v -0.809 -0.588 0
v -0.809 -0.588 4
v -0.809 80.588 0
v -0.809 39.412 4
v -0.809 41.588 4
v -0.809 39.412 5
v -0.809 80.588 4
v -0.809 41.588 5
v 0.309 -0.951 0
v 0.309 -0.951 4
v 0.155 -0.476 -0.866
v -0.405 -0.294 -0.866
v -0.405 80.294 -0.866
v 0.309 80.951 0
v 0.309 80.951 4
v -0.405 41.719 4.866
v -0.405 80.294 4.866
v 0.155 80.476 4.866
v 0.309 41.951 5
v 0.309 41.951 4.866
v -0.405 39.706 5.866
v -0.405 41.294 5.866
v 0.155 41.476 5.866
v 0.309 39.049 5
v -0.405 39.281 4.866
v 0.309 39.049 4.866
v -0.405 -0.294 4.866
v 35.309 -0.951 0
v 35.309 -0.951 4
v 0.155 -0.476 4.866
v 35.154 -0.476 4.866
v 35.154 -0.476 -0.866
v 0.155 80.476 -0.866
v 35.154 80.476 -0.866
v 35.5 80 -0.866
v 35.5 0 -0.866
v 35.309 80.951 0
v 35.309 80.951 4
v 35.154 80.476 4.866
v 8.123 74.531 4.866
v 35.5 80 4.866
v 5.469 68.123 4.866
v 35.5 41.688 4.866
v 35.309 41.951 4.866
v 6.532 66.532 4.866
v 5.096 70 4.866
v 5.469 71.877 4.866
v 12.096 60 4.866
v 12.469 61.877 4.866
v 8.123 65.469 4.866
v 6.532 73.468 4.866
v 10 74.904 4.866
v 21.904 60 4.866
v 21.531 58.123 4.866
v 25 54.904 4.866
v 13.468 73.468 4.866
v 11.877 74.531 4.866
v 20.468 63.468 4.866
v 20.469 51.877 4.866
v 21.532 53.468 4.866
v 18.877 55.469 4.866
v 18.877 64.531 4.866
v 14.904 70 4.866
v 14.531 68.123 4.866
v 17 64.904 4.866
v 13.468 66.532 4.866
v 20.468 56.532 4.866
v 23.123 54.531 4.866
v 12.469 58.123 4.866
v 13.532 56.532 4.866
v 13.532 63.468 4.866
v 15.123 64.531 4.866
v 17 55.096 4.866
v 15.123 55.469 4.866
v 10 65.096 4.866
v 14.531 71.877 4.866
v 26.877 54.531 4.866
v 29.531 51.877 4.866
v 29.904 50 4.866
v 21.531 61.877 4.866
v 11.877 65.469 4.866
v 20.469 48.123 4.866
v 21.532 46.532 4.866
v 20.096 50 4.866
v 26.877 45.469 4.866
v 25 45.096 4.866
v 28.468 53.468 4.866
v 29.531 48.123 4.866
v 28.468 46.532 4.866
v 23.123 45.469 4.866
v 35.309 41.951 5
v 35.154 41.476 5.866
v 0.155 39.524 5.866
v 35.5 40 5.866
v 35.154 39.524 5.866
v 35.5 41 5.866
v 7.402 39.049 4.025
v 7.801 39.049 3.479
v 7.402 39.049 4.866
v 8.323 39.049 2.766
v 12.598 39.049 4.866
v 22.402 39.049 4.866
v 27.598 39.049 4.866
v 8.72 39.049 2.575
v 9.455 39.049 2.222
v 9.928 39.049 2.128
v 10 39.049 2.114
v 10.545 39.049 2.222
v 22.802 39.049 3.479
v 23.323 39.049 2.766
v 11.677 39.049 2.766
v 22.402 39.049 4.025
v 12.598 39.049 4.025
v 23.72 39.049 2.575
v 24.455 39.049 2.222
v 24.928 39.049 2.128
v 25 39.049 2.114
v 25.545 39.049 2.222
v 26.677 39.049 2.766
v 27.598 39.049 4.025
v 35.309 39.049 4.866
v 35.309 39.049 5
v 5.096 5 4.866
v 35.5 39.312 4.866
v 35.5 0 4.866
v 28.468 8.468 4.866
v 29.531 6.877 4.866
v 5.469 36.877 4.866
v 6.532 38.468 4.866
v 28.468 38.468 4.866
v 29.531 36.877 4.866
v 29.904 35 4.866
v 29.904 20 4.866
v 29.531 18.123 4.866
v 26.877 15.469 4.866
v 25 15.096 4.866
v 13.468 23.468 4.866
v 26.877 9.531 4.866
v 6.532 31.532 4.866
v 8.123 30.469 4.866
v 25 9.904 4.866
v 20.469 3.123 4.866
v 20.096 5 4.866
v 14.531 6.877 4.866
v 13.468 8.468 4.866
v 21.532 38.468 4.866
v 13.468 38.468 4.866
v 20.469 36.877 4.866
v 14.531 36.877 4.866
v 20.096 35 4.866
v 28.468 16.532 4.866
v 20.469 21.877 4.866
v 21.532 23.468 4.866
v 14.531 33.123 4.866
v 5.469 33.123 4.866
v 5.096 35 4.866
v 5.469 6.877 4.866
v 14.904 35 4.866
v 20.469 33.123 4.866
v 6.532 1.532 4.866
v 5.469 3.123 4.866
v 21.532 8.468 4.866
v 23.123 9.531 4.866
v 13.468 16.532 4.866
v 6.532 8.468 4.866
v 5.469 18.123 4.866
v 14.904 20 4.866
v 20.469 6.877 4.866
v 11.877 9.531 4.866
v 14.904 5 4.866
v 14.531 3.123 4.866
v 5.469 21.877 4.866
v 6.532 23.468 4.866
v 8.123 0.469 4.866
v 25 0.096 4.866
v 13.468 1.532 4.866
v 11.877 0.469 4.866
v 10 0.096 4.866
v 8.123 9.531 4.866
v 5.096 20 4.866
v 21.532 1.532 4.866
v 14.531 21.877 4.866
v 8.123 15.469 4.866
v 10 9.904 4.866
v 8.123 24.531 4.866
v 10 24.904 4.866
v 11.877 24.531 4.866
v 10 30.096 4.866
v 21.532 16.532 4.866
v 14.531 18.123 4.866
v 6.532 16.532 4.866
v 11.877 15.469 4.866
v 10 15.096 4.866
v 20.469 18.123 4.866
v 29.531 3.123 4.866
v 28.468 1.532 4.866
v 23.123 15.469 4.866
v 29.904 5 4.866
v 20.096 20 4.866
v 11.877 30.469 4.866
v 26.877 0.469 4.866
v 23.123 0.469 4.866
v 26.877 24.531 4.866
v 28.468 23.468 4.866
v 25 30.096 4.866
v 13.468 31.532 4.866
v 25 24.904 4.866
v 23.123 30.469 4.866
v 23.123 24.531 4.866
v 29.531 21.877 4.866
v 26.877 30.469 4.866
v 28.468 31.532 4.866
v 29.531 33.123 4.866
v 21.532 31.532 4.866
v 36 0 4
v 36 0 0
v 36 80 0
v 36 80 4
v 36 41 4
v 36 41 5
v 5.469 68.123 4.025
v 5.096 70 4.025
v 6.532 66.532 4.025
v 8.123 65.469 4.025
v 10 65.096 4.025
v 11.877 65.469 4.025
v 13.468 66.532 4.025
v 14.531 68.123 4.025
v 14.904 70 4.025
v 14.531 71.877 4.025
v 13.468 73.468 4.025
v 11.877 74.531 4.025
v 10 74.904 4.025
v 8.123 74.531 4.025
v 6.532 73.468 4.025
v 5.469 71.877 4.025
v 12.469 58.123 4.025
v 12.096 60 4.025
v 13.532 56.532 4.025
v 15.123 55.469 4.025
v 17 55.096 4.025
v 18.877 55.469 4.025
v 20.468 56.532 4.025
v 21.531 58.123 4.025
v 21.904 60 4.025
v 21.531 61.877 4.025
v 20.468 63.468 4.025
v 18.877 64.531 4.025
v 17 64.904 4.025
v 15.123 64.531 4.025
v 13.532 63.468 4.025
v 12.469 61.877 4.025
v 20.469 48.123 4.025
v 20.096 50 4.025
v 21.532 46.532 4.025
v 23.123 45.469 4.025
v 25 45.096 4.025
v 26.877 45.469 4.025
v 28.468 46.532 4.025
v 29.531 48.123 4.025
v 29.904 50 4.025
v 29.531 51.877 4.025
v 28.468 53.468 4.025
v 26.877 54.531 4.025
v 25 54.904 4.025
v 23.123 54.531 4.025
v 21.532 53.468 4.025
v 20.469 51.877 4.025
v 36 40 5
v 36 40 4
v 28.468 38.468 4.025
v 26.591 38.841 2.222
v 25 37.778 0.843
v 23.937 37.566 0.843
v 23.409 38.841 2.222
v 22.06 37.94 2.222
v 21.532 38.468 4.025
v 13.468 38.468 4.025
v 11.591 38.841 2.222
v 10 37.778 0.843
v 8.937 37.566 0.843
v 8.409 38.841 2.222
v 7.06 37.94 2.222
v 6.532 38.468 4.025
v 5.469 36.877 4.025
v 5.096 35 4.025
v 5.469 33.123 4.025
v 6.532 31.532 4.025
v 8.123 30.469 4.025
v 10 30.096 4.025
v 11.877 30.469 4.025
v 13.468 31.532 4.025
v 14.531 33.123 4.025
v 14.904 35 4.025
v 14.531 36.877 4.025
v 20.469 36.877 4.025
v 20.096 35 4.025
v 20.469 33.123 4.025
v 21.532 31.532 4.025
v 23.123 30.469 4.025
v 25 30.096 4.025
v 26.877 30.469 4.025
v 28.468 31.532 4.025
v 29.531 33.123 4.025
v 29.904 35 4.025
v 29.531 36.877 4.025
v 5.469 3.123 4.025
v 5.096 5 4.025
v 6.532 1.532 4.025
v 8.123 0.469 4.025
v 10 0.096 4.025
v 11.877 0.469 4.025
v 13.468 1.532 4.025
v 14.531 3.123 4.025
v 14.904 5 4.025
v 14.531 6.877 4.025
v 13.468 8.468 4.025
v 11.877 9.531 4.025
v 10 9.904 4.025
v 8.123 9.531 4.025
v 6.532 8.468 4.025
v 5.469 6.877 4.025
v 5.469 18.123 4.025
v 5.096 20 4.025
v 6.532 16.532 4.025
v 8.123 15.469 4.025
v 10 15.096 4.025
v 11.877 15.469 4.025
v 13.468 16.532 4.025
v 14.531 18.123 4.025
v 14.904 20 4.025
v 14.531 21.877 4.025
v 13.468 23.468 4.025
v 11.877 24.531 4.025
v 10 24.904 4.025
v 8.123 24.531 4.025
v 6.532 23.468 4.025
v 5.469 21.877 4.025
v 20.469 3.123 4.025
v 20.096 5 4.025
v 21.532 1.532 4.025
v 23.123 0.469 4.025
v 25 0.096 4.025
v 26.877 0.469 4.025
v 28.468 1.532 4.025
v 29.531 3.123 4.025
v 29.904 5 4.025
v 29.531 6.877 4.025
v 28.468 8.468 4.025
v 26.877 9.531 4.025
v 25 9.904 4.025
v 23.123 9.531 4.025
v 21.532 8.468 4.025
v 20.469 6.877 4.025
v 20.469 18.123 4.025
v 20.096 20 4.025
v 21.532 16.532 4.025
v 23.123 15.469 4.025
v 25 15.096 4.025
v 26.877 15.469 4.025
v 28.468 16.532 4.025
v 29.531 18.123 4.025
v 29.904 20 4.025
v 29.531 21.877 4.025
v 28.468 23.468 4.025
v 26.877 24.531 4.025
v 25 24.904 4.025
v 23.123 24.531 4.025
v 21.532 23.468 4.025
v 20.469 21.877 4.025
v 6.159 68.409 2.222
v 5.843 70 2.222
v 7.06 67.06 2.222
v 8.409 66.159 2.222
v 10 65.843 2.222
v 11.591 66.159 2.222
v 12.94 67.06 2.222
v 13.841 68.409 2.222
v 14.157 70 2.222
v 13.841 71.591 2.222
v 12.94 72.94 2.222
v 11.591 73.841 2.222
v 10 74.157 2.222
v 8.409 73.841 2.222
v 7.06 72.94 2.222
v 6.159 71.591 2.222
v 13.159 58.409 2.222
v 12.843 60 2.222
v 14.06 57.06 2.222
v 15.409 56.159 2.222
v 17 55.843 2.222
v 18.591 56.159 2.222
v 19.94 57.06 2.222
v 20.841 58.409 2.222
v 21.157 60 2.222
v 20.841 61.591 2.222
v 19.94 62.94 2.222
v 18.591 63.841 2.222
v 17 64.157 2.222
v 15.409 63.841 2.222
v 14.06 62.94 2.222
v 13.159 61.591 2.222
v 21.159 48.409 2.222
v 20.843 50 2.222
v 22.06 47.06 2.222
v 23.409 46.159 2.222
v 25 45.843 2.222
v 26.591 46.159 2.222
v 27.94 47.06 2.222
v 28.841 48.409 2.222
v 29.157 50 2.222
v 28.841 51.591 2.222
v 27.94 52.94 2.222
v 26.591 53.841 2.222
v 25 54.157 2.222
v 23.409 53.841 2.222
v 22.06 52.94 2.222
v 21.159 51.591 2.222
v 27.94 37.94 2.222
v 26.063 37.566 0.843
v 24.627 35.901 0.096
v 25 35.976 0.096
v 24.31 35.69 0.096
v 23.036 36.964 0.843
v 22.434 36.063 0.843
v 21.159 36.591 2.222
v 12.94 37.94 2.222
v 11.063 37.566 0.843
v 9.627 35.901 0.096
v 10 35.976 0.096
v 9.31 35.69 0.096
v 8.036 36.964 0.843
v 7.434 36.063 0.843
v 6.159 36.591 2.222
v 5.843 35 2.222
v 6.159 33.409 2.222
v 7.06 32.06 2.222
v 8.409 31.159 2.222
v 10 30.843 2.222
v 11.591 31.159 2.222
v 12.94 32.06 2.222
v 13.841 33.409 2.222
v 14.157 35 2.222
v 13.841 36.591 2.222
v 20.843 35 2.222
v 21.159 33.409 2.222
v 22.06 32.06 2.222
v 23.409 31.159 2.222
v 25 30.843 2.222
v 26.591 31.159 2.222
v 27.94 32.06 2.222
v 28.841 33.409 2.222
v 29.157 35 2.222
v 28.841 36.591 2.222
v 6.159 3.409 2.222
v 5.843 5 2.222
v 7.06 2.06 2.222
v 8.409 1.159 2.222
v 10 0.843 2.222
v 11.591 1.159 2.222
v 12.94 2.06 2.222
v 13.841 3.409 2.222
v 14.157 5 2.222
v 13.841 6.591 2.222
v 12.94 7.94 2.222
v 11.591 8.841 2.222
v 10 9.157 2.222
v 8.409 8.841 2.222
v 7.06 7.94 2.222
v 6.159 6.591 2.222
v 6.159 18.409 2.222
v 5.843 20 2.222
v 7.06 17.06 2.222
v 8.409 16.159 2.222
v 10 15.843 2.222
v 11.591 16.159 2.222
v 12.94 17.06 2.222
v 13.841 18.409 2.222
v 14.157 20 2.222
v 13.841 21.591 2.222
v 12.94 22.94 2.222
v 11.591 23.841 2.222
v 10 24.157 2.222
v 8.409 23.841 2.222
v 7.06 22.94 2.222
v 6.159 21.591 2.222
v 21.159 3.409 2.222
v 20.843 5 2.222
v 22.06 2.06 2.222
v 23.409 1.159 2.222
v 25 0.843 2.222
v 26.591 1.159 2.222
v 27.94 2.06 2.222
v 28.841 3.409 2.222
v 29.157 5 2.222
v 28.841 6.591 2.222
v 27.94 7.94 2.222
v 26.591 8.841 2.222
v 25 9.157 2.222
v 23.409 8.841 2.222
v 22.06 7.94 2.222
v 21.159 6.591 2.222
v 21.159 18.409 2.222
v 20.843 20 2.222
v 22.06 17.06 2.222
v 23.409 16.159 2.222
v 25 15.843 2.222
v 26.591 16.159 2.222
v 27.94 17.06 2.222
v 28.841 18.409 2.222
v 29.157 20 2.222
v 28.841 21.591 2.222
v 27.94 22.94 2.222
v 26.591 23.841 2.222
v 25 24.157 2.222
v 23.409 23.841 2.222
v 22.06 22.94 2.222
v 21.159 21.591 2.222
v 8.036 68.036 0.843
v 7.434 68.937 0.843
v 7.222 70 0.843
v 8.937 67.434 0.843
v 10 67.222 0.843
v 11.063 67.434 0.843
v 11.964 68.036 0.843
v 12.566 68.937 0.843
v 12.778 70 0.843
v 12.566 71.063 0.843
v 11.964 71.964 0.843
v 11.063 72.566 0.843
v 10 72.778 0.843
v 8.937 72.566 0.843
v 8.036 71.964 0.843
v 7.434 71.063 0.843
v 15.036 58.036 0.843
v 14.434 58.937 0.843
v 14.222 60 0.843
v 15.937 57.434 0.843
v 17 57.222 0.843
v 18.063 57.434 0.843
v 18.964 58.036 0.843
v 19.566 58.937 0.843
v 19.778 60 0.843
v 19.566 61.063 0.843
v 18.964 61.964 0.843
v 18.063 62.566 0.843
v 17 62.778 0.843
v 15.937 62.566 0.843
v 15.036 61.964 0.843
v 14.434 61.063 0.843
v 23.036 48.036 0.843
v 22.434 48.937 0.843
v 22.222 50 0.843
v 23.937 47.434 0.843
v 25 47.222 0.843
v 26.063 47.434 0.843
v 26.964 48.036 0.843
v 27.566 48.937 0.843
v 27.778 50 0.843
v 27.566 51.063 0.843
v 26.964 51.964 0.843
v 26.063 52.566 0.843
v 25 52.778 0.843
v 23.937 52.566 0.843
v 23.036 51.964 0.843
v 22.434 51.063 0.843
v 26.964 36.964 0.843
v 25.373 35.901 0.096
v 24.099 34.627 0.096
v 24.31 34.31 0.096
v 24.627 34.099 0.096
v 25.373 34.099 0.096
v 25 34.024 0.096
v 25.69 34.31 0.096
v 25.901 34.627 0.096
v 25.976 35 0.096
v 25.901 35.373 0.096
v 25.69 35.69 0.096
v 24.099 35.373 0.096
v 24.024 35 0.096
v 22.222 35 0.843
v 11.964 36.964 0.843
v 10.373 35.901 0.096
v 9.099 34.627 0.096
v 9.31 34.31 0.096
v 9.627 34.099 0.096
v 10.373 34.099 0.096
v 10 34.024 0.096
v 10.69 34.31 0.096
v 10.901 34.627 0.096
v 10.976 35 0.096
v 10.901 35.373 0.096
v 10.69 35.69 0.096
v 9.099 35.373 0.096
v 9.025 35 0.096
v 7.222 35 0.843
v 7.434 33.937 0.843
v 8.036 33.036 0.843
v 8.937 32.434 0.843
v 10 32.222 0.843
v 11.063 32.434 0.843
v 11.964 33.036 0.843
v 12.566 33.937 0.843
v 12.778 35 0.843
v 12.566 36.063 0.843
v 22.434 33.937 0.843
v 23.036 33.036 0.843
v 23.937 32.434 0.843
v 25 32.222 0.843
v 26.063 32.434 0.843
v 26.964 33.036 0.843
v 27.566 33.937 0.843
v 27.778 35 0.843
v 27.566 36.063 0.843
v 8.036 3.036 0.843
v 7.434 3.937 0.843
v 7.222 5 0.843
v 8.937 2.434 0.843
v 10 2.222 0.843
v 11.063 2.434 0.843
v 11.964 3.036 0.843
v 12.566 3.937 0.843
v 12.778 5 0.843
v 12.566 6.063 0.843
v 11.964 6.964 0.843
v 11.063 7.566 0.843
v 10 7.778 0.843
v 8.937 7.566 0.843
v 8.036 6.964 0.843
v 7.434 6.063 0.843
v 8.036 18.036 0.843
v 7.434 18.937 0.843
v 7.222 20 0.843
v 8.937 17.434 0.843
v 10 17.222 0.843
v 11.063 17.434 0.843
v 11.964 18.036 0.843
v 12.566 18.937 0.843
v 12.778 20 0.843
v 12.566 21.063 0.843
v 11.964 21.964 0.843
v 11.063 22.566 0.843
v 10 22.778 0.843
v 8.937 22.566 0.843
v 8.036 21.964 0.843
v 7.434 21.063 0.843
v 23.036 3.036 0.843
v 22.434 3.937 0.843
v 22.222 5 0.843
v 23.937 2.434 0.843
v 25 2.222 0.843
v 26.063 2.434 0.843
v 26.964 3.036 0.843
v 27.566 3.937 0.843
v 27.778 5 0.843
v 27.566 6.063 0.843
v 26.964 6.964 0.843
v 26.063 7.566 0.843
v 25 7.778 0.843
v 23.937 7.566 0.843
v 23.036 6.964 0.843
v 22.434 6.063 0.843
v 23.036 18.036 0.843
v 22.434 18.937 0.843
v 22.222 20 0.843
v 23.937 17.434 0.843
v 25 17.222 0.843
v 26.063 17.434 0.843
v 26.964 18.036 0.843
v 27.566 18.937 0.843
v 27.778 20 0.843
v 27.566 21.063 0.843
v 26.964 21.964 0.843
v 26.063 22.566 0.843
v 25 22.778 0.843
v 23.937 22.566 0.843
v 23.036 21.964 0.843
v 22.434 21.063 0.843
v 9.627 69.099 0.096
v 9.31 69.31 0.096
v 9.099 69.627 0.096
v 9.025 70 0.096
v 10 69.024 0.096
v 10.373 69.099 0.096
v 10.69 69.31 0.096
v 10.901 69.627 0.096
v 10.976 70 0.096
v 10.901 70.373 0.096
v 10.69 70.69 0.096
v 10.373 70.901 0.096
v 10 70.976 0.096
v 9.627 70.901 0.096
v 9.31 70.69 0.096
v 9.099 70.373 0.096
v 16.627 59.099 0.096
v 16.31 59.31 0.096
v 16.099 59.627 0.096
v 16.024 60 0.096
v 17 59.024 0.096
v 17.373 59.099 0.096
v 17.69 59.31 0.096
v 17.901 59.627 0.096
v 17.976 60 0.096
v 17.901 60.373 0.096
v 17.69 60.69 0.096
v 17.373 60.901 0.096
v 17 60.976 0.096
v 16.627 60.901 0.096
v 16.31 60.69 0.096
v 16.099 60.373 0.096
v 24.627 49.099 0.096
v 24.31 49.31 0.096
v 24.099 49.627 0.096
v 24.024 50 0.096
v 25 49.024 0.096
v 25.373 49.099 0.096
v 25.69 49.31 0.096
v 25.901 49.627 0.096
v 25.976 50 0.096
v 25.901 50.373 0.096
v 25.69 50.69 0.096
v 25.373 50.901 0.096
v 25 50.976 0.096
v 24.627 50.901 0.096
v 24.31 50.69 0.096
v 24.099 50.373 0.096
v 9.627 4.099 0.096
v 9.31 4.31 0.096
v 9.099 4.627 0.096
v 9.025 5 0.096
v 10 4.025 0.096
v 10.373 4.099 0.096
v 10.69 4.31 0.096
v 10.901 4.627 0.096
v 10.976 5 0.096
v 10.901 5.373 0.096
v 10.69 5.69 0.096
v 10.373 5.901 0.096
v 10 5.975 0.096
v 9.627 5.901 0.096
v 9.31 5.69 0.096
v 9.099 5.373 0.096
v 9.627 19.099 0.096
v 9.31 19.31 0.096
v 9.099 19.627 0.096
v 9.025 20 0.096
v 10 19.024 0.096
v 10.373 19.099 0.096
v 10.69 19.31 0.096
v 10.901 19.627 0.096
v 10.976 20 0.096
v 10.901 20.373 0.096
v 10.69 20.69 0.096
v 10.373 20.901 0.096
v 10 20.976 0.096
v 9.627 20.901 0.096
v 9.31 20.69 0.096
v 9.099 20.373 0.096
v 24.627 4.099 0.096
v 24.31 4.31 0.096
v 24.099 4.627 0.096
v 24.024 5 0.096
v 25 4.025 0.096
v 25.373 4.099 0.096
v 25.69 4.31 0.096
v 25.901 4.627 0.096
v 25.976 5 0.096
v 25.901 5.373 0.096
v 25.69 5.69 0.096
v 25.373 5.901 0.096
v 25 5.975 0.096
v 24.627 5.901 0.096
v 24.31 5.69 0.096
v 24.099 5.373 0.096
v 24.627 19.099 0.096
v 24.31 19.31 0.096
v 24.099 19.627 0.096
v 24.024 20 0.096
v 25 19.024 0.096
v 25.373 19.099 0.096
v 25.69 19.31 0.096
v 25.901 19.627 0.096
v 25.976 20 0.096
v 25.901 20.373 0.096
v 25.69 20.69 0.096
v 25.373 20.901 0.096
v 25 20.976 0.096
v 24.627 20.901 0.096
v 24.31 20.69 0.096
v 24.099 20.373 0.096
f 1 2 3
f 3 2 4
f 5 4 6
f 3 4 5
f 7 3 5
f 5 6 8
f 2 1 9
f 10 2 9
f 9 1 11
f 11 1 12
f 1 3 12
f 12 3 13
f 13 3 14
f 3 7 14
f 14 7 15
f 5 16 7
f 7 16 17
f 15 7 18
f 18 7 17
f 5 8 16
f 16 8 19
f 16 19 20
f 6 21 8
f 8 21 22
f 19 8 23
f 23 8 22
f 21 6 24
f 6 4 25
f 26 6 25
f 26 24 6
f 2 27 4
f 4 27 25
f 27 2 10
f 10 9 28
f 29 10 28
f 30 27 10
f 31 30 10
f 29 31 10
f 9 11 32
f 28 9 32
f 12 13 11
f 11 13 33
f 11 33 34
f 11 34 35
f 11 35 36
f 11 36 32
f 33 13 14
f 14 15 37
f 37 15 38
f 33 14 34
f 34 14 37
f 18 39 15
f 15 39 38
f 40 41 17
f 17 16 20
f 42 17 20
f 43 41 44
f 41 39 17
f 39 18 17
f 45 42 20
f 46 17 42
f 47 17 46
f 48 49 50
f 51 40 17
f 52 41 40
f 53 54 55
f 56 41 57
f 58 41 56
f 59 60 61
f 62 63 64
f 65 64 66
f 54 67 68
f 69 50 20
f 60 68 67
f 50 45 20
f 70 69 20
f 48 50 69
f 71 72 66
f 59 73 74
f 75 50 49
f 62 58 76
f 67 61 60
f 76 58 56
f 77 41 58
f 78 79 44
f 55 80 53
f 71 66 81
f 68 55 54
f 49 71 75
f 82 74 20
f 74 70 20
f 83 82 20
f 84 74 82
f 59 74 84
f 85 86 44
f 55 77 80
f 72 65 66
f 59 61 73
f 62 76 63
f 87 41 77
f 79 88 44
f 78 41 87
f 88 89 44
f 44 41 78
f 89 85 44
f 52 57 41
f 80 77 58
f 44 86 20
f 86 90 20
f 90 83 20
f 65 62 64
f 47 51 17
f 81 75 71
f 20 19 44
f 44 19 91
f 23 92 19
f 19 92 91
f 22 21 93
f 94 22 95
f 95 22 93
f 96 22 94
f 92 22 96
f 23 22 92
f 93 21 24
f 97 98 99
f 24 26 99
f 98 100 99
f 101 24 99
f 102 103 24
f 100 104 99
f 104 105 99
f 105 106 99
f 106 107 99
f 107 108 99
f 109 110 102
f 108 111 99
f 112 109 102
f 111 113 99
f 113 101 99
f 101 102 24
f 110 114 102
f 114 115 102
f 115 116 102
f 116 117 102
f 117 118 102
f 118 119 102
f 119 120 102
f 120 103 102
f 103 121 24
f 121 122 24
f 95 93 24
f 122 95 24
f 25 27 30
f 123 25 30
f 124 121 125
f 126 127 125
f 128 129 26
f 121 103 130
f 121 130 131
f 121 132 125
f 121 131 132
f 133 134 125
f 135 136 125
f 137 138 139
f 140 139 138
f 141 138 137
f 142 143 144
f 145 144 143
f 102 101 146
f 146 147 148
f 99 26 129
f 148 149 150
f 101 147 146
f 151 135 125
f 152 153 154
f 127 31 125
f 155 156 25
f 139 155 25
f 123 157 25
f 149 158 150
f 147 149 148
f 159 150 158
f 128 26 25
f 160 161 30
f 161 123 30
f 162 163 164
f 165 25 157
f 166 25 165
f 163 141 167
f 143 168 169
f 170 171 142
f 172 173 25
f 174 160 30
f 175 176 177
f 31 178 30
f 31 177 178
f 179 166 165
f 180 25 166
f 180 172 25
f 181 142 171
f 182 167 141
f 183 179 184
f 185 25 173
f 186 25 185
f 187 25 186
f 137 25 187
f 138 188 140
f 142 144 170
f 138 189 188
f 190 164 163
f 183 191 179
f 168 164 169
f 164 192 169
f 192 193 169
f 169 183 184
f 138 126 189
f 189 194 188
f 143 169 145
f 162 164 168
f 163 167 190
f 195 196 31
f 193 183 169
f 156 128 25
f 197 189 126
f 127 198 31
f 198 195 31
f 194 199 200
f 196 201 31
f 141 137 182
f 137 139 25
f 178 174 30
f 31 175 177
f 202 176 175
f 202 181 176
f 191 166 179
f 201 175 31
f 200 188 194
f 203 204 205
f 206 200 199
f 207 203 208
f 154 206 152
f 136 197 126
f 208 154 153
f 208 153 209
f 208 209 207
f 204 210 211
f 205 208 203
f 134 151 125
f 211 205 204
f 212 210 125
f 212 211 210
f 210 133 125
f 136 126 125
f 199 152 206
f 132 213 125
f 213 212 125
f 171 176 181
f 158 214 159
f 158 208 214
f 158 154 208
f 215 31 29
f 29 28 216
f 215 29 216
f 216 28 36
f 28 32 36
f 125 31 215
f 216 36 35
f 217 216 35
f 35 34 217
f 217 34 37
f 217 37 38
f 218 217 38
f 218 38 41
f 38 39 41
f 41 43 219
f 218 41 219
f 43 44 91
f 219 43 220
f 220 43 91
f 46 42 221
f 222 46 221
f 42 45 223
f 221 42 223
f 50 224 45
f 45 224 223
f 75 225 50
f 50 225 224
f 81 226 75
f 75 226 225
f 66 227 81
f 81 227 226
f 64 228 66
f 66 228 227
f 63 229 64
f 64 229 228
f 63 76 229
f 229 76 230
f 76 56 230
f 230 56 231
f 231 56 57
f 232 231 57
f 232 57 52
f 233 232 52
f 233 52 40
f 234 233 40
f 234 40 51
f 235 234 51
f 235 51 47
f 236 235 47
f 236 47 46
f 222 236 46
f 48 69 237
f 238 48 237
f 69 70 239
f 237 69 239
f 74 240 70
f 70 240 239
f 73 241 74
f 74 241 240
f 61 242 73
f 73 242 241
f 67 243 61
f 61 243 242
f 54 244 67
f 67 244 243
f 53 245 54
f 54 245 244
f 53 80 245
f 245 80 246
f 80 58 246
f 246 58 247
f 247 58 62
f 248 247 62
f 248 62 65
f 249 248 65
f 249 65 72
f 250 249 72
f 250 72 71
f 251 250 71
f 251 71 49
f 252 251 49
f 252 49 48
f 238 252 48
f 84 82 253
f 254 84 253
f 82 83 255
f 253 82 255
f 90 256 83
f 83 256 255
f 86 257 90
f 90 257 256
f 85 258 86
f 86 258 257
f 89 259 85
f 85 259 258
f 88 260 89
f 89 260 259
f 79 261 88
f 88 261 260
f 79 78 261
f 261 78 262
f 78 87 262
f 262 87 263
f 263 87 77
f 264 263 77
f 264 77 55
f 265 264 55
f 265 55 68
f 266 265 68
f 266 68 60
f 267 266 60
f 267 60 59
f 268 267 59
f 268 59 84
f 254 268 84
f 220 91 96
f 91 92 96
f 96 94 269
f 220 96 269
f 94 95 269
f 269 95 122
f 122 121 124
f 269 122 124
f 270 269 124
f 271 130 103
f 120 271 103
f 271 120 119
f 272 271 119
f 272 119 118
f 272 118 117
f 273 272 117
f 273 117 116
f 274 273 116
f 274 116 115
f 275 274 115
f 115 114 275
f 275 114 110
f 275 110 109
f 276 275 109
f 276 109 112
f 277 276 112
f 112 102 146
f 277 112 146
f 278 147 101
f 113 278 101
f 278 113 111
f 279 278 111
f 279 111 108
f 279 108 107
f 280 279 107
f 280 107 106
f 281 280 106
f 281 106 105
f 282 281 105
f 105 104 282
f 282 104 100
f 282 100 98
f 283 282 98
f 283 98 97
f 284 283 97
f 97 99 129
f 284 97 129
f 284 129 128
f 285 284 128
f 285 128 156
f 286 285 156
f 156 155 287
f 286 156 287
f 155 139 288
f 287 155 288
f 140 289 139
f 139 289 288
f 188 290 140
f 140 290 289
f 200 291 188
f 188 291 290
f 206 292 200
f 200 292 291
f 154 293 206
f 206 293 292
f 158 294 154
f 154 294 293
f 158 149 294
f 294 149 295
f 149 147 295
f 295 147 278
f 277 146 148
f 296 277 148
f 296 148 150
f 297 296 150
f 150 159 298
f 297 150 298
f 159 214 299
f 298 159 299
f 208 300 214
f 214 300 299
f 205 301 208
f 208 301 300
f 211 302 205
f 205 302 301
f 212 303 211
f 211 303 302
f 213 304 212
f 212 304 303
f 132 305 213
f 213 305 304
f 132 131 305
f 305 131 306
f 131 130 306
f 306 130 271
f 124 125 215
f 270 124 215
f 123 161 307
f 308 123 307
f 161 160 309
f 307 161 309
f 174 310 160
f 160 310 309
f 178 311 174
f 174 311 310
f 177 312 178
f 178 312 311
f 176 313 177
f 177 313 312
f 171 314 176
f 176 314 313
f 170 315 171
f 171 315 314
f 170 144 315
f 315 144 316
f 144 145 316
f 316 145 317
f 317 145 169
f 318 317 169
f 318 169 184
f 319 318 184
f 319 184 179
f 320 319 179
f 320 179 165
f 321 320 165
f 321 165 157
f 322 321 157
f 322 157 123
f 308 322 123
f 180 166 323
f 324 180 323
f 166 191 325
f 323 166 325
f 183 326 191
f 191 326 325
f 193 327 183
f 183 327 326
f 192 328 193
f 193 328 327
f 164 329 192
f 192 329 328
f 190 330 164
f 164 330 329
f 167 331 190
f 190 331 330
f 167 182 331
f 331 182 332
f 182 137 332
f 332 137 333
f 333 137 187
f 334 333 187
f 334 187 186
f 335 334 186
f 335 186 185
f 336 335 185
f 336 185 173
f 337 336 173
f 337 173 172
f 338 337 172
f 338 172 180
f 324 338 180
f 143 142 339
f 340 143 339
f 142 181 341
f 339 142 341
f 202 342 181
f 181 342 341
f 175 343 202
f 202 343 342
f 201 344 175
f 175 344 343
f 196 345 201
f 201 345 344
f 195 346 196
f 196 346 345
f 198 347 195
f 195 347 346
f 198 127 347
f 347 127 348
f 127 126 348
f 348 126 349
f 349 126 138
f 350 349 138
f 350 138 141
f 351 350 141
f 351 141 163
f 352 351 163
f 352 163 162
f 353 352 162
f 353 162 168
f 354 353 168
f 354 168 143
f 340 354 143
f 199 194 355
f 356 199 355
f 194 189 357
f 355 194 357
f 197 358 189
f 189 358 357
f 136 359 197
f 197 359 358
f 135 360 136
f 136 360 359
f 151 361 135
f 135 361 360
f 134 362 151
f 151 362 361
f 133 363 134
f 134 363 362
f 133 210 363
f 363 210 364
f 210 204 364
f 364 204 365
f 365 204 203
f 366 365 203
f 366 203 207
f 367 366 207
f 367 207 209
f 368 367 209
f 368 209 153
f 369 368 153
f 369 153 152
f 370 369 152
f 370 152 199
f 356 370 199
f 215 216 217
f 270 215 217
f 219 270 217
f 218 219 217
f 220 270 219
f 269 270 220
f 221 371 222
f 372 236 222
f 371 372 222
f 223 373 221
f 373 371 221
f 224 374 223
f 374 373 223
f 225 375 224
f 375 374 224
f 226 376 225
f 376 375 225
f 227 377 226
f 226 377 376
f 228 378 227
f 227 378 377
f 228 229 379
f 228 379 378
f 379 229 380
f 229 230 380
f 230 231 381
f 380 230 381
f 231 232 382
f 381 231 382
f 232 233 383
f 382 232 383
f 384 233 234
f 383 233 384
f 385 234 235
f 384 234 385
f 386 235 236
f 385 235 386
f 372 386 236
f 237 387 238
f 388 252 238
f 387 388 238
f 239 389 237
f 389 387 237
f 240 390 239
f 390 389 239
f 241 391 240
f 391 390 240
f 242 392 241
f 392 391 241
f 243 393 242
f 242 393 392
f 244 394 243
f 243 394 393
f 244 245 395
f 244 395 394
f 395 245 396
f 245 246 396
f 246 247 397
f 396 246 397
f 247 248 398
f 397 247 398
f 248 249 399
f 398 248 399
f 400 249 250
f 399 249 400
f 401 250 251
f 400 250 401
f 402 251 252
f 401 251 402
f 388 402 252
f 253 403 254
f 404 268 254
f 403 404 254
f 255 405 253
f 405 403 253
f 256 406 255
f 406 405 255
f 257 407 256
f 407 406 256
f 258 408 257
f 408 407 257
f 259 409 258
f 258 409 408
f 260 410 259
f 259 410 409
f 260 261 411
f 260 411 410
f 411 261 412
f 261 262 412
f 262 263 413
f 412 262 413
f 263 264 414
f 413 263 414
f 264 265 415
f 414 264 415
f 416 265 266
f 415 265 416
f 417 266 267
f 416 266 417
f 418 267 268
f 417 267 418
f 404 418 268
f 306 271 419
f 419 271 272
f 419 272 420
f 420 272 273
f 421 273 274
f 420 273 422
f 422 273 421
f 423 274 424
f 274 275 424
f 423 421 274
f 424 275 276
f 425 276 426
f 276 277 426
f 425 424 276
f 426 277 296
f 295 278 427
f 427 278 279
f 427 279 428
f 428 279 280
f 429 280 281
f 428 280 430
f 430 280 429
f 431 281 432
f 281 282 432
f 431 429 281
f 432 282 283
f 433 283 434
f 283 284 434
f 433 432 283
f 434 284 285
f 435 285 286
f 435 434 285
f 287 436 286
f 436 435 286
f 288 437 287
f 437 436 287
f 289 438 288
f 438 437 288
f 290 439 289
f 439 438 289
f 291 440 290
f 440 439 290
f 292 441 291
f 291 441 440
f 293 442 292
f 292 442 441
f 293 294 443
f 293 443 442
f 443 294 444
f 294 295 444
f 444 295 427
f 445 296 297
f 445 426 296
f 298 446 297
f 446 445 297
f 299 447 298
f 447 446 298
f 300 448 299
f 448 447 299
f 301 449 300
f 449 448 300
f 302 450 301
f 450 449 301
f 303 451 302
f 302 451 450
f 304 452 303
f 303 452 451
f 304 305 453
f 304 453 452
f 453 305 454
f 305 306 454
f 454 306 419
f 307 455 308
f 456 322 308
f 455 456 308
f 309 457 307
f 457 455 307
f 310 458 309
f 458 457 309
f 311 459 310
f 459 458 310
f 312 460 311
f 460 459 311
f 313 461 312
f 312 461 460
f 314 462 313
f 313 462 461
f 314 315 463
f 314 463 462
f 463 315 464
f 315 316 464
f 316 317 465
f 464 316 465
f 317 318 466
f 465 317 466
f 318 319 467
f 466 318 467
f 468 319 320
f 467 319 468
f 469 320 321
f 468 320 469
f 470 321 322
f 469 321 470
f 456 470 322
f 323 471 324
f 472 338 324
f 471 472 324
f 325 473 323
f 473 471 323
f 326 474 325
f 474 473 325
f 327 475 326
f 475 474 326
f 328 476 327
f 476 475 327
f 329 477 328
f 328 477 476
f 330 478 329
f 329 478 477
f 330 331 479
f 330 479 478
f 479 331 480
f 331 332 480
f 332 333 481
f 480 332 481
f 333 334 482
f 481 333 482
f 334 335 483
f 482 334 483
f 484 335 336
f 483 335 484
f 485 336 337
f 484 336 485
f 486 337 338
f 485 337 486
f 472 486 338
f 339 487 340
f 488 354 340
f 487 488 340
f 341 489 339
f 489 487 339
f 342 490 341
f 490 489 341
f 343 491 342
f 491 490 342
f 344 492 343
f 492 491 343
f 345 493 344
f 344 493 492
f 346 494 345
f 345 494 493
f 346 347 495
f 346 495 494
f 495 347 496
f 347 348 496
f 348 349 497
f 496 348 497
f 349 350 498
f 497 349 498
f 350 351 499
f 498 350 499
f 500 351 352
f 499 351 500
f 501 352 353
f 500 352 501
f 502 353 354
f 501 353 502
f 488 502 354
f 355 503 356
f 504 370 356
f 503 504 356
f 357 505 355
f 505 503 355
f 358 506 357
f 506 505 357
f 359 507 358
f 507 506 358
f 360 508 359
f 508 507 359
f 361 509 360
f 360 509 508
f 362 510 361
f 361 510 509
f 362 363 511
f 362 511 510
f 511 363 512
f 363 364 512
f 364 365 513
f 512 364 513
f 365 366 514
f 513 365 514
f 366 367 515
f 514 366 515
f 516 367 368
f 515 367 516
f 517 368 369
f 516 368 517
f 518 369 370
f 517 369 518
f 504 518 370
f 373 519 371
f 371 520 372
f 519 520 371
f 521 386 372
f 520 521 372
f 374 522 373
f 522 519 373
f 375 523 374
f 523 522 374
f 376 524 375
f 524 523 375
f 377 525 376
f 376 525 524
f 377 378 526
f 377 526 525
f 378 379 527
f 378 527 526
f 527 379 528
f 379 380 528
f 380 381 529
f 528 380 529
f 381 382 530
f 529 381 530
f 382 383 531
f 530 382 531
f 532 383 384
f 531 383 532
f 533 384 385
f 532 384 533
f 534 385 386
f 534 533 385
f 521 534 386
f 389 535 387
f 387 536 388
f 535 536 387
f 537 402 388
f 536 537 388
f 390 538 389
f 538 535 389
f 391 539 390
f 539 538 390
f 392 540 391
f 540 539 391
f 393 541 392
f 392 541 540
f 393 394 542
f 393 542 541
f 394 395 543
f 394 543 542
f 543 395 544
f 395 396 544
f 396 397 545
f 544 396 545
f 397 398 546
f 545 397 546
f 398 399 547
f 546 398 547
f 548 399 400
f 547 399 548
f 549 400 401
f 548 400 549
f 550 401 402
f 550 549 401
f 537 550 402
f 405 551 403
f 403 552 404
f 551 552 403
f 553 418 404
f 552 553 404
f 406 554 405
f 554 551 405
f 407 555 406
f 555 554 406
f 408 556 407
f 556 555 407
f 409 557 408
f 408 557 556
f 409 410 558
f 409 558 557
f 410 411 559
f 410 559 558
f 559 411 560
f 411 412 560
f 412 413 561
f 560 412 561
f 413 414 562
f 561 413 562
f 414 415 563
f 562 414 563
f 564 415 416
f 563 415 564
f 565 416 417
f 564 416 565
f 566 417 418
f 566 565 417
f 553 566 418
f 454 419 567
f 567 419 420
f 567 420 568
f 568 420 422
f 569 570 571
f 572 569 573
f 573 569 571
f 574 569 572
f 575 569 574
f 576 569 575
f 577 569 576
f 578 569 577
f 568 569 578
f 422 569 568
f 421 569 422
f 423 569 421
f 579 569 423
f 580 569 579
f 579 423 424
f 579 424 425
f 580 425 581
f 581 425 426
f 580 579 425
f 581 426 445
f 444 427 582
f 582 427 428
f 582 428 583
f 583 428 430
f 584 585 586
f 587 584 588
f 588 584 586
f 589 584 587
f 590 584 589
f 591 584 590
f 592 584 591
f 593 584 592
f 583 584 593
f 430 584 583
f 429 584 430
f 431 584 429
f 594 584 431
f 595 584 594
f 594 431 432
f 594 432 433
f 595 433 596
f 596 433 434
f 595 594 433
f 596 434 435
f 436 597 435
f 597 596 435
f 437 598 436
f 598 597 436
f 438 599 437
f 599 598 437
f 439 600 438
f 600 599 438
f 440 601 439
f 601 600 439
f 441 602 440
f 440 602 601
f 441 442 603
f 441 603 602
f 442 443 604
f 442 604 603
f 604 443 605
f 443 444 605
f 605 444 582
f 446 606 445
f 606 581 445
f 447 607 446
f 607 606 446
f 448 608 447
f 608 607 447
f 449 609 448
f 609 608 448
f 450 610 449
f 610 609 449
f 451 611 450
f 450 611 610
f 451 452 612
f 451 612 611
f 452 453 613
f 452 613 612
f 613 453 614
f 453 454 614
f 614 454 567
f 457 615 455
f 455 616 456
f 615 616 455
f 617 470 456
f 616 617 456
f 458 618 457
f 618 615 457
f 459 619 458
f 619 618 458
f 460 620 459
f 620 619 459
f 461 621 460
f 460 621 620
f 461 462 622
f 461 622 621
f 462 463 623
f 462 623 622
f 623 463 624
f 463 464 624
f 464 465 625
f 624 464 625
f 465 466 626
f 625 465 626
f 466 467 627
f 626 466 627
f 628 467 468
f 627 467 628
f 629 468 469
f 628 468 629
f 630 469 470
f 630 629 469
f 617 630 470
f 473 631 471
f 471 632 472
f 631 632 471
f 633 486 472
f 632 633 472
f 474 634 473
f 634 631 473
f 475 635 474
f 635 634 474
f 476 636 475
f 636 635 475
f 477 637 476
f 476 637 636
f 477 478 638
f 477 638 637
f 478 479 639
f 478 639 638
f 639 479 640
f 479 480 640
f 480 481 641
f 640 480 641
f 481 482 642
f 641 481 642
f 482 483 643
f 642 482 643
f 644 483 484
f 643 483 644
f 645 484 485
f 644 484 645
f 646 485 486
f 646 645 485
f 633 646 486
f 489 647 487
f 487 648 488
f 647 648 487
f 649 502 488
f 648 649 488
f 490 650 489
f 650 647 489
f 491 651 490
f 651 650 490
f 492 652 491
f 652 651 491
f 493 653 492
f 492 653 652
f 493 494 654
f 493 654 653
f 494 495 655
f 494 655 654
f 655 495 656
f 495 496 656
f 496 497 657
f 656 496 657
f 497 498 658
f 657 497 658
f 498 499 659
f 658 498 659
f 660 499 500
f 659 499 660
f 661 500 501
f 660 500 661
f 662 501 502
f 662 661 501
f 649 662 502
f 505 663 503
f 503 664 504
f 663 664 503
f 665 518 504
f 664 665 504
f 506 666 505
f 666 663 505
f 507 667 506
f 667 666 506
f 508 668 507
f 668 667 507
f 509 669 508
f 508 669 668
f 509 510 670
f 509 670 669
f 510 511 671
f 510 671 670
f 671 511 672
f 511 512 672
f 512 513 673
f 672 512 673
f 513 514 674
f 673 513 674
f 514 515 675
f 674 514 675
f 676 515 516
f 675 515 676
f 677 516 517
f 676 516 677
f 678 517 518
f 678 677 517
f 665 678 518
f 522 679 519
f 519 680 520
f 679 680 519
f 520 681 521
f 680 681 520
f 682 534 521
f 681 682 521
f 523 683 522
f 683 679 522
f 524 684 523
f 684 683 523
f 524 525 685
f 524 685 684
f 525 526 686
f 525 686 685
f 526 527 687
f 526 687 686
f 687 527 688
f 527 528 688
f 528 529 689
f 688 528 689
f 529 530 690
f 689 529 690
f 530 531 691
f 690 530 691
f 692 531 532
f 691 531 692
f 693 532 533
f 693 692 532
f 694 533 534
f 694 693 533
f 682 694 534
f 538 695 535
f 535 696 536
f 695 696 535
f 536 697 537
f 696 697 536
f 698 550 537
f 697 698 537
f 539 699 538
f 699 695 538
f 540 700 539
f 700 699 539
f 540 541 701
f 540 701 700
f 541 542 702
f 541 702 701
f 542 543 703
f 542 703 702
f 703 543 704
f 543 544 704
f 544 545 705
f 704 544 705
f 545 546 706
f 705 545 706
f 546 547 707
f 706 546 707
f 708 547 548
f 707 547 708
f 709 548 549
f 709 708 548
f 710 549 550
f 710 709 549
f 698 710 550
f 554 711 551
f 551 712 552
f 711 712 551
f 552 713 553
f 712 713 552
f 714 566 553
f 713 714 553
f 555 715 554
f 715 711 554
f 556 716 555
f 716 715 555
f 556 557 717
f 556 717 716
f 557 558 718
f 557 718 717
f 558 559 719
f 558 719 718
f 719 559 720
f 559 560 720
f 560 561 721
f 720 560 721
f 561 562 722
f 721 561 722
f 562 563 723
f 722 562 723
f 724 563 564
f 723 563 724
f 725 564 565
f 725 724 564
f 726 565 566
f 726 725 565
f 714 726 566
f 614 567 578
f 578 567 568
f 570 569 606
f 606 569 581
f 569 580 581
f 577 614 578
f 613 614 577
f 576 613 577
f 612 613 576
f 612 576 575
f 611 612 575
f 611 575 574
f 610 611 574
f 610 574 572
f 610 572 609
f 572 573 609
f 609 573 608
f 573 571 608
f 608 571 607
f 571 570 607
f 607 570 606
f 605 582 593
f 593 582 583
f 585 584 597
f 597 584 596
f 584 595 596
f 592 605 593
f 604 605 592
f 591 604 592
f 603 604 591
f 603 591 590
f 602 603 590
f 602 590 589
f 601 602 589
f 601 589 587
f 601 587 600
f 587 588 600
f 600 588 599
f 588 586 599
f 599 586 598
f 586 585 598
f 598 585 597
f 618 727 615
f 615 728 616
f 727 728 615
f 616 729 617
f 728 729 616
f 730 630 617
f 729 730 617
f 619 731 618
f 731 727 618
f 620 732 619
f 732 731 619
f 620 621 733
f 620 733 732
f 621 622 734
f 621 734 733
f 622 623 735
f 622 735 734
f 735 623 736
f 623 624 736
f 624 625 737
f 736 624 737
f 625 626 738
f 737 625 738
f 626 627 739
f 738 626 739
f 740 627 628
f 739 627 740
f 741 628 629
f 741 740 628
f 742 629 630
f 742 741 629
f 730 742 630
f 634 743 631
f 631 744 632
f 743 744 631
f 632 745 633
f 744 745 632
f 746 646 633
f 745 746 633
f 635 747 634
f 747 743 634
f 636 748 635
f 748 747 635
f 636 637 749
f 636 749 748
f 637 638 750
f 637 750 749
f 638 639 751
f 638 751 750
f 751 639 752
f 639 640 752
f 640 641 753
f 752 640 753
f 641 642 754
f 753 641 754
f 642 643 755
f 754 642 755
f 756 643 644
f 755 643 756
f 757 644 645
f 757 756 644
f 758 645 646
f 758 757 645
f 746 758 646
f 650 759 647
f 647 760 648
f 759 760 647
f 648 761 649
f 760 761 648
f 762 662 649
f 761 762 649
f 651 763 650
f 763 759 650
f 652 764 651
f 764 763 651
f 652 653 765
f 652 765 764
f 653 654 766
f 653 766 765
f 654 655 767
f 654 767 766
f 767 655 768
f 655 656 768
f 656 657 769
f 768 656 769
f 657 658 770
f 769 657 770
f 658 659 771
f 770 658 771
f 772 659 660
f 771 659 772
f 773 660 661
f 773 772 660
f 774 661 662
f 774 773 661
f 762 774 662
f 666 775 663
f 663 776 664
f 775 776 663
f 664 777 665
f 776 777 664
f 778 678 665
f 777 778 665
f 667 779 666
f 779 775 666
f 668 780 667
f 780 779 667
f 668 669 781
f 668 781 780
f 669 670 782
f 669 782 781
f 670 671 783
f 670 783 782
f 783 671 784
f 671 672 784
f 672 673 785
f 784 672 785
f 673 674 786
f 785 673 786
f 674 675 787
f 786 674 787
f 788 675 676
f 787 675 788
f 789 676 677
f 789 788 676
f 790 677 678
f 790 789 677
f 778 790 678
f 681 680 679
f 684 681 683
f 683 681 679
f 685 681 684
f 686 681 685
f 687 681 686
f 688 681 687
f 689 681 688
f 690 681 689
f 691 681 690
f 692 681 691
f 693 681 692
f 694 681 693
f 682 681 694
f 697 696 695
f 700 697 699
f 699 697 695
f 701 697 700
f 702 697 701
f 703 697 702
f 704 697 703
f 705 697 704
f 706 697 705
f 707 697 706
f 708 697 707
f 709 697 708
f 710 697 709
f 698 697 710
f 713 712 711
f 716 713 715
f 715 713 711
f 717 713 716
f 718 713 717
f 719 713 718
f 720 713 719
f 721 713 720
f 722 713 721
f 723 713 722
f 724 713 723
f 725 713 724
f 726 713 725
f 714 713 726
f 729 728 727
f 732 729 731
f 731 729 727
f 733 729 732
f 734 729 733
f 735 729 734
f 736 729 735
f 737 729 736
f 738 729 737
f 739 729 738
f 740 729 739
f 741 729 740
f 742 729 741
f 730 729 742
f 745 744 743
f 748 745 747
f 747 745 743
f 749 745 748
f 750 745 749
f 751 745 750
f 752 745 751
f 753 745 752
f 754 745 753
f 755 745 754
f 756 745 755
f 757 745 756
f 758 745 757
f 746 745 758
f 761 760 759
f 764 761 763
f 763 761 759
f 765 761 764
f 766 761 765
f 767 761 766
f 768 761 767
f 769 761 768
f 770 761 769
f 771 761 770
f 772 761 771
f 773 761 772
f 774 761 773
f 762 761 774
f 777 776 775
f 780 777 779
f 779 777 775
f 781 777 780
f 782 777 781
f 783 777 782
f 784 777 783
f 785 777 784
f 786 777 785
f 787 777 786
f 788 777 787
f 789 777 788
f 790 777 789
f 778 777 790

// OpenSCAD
// Loguncov Maxim 13.12.13


//$fn=128;


translate([0,40,0])
minkowski()
{cube([35,1,5]);
sphere(1);
}

difference() {

//основа
minkowski()
{cube([35,80,4]);
sphere(1);
}

//отверстия
translate([10,5,5])sphere(5);
translate([25,5,5])sphere(5);
translate([10,20,5])sphere(5);
translate([25,20,5])sphere(5);
translate([10,35,5])sphere(5);
translate([25,35,5])sphere(5);

translate([10,70,5])sphere(5);
translate([25,50,5])sphere(5);
translate([17,60,5])sphere(5);


}
